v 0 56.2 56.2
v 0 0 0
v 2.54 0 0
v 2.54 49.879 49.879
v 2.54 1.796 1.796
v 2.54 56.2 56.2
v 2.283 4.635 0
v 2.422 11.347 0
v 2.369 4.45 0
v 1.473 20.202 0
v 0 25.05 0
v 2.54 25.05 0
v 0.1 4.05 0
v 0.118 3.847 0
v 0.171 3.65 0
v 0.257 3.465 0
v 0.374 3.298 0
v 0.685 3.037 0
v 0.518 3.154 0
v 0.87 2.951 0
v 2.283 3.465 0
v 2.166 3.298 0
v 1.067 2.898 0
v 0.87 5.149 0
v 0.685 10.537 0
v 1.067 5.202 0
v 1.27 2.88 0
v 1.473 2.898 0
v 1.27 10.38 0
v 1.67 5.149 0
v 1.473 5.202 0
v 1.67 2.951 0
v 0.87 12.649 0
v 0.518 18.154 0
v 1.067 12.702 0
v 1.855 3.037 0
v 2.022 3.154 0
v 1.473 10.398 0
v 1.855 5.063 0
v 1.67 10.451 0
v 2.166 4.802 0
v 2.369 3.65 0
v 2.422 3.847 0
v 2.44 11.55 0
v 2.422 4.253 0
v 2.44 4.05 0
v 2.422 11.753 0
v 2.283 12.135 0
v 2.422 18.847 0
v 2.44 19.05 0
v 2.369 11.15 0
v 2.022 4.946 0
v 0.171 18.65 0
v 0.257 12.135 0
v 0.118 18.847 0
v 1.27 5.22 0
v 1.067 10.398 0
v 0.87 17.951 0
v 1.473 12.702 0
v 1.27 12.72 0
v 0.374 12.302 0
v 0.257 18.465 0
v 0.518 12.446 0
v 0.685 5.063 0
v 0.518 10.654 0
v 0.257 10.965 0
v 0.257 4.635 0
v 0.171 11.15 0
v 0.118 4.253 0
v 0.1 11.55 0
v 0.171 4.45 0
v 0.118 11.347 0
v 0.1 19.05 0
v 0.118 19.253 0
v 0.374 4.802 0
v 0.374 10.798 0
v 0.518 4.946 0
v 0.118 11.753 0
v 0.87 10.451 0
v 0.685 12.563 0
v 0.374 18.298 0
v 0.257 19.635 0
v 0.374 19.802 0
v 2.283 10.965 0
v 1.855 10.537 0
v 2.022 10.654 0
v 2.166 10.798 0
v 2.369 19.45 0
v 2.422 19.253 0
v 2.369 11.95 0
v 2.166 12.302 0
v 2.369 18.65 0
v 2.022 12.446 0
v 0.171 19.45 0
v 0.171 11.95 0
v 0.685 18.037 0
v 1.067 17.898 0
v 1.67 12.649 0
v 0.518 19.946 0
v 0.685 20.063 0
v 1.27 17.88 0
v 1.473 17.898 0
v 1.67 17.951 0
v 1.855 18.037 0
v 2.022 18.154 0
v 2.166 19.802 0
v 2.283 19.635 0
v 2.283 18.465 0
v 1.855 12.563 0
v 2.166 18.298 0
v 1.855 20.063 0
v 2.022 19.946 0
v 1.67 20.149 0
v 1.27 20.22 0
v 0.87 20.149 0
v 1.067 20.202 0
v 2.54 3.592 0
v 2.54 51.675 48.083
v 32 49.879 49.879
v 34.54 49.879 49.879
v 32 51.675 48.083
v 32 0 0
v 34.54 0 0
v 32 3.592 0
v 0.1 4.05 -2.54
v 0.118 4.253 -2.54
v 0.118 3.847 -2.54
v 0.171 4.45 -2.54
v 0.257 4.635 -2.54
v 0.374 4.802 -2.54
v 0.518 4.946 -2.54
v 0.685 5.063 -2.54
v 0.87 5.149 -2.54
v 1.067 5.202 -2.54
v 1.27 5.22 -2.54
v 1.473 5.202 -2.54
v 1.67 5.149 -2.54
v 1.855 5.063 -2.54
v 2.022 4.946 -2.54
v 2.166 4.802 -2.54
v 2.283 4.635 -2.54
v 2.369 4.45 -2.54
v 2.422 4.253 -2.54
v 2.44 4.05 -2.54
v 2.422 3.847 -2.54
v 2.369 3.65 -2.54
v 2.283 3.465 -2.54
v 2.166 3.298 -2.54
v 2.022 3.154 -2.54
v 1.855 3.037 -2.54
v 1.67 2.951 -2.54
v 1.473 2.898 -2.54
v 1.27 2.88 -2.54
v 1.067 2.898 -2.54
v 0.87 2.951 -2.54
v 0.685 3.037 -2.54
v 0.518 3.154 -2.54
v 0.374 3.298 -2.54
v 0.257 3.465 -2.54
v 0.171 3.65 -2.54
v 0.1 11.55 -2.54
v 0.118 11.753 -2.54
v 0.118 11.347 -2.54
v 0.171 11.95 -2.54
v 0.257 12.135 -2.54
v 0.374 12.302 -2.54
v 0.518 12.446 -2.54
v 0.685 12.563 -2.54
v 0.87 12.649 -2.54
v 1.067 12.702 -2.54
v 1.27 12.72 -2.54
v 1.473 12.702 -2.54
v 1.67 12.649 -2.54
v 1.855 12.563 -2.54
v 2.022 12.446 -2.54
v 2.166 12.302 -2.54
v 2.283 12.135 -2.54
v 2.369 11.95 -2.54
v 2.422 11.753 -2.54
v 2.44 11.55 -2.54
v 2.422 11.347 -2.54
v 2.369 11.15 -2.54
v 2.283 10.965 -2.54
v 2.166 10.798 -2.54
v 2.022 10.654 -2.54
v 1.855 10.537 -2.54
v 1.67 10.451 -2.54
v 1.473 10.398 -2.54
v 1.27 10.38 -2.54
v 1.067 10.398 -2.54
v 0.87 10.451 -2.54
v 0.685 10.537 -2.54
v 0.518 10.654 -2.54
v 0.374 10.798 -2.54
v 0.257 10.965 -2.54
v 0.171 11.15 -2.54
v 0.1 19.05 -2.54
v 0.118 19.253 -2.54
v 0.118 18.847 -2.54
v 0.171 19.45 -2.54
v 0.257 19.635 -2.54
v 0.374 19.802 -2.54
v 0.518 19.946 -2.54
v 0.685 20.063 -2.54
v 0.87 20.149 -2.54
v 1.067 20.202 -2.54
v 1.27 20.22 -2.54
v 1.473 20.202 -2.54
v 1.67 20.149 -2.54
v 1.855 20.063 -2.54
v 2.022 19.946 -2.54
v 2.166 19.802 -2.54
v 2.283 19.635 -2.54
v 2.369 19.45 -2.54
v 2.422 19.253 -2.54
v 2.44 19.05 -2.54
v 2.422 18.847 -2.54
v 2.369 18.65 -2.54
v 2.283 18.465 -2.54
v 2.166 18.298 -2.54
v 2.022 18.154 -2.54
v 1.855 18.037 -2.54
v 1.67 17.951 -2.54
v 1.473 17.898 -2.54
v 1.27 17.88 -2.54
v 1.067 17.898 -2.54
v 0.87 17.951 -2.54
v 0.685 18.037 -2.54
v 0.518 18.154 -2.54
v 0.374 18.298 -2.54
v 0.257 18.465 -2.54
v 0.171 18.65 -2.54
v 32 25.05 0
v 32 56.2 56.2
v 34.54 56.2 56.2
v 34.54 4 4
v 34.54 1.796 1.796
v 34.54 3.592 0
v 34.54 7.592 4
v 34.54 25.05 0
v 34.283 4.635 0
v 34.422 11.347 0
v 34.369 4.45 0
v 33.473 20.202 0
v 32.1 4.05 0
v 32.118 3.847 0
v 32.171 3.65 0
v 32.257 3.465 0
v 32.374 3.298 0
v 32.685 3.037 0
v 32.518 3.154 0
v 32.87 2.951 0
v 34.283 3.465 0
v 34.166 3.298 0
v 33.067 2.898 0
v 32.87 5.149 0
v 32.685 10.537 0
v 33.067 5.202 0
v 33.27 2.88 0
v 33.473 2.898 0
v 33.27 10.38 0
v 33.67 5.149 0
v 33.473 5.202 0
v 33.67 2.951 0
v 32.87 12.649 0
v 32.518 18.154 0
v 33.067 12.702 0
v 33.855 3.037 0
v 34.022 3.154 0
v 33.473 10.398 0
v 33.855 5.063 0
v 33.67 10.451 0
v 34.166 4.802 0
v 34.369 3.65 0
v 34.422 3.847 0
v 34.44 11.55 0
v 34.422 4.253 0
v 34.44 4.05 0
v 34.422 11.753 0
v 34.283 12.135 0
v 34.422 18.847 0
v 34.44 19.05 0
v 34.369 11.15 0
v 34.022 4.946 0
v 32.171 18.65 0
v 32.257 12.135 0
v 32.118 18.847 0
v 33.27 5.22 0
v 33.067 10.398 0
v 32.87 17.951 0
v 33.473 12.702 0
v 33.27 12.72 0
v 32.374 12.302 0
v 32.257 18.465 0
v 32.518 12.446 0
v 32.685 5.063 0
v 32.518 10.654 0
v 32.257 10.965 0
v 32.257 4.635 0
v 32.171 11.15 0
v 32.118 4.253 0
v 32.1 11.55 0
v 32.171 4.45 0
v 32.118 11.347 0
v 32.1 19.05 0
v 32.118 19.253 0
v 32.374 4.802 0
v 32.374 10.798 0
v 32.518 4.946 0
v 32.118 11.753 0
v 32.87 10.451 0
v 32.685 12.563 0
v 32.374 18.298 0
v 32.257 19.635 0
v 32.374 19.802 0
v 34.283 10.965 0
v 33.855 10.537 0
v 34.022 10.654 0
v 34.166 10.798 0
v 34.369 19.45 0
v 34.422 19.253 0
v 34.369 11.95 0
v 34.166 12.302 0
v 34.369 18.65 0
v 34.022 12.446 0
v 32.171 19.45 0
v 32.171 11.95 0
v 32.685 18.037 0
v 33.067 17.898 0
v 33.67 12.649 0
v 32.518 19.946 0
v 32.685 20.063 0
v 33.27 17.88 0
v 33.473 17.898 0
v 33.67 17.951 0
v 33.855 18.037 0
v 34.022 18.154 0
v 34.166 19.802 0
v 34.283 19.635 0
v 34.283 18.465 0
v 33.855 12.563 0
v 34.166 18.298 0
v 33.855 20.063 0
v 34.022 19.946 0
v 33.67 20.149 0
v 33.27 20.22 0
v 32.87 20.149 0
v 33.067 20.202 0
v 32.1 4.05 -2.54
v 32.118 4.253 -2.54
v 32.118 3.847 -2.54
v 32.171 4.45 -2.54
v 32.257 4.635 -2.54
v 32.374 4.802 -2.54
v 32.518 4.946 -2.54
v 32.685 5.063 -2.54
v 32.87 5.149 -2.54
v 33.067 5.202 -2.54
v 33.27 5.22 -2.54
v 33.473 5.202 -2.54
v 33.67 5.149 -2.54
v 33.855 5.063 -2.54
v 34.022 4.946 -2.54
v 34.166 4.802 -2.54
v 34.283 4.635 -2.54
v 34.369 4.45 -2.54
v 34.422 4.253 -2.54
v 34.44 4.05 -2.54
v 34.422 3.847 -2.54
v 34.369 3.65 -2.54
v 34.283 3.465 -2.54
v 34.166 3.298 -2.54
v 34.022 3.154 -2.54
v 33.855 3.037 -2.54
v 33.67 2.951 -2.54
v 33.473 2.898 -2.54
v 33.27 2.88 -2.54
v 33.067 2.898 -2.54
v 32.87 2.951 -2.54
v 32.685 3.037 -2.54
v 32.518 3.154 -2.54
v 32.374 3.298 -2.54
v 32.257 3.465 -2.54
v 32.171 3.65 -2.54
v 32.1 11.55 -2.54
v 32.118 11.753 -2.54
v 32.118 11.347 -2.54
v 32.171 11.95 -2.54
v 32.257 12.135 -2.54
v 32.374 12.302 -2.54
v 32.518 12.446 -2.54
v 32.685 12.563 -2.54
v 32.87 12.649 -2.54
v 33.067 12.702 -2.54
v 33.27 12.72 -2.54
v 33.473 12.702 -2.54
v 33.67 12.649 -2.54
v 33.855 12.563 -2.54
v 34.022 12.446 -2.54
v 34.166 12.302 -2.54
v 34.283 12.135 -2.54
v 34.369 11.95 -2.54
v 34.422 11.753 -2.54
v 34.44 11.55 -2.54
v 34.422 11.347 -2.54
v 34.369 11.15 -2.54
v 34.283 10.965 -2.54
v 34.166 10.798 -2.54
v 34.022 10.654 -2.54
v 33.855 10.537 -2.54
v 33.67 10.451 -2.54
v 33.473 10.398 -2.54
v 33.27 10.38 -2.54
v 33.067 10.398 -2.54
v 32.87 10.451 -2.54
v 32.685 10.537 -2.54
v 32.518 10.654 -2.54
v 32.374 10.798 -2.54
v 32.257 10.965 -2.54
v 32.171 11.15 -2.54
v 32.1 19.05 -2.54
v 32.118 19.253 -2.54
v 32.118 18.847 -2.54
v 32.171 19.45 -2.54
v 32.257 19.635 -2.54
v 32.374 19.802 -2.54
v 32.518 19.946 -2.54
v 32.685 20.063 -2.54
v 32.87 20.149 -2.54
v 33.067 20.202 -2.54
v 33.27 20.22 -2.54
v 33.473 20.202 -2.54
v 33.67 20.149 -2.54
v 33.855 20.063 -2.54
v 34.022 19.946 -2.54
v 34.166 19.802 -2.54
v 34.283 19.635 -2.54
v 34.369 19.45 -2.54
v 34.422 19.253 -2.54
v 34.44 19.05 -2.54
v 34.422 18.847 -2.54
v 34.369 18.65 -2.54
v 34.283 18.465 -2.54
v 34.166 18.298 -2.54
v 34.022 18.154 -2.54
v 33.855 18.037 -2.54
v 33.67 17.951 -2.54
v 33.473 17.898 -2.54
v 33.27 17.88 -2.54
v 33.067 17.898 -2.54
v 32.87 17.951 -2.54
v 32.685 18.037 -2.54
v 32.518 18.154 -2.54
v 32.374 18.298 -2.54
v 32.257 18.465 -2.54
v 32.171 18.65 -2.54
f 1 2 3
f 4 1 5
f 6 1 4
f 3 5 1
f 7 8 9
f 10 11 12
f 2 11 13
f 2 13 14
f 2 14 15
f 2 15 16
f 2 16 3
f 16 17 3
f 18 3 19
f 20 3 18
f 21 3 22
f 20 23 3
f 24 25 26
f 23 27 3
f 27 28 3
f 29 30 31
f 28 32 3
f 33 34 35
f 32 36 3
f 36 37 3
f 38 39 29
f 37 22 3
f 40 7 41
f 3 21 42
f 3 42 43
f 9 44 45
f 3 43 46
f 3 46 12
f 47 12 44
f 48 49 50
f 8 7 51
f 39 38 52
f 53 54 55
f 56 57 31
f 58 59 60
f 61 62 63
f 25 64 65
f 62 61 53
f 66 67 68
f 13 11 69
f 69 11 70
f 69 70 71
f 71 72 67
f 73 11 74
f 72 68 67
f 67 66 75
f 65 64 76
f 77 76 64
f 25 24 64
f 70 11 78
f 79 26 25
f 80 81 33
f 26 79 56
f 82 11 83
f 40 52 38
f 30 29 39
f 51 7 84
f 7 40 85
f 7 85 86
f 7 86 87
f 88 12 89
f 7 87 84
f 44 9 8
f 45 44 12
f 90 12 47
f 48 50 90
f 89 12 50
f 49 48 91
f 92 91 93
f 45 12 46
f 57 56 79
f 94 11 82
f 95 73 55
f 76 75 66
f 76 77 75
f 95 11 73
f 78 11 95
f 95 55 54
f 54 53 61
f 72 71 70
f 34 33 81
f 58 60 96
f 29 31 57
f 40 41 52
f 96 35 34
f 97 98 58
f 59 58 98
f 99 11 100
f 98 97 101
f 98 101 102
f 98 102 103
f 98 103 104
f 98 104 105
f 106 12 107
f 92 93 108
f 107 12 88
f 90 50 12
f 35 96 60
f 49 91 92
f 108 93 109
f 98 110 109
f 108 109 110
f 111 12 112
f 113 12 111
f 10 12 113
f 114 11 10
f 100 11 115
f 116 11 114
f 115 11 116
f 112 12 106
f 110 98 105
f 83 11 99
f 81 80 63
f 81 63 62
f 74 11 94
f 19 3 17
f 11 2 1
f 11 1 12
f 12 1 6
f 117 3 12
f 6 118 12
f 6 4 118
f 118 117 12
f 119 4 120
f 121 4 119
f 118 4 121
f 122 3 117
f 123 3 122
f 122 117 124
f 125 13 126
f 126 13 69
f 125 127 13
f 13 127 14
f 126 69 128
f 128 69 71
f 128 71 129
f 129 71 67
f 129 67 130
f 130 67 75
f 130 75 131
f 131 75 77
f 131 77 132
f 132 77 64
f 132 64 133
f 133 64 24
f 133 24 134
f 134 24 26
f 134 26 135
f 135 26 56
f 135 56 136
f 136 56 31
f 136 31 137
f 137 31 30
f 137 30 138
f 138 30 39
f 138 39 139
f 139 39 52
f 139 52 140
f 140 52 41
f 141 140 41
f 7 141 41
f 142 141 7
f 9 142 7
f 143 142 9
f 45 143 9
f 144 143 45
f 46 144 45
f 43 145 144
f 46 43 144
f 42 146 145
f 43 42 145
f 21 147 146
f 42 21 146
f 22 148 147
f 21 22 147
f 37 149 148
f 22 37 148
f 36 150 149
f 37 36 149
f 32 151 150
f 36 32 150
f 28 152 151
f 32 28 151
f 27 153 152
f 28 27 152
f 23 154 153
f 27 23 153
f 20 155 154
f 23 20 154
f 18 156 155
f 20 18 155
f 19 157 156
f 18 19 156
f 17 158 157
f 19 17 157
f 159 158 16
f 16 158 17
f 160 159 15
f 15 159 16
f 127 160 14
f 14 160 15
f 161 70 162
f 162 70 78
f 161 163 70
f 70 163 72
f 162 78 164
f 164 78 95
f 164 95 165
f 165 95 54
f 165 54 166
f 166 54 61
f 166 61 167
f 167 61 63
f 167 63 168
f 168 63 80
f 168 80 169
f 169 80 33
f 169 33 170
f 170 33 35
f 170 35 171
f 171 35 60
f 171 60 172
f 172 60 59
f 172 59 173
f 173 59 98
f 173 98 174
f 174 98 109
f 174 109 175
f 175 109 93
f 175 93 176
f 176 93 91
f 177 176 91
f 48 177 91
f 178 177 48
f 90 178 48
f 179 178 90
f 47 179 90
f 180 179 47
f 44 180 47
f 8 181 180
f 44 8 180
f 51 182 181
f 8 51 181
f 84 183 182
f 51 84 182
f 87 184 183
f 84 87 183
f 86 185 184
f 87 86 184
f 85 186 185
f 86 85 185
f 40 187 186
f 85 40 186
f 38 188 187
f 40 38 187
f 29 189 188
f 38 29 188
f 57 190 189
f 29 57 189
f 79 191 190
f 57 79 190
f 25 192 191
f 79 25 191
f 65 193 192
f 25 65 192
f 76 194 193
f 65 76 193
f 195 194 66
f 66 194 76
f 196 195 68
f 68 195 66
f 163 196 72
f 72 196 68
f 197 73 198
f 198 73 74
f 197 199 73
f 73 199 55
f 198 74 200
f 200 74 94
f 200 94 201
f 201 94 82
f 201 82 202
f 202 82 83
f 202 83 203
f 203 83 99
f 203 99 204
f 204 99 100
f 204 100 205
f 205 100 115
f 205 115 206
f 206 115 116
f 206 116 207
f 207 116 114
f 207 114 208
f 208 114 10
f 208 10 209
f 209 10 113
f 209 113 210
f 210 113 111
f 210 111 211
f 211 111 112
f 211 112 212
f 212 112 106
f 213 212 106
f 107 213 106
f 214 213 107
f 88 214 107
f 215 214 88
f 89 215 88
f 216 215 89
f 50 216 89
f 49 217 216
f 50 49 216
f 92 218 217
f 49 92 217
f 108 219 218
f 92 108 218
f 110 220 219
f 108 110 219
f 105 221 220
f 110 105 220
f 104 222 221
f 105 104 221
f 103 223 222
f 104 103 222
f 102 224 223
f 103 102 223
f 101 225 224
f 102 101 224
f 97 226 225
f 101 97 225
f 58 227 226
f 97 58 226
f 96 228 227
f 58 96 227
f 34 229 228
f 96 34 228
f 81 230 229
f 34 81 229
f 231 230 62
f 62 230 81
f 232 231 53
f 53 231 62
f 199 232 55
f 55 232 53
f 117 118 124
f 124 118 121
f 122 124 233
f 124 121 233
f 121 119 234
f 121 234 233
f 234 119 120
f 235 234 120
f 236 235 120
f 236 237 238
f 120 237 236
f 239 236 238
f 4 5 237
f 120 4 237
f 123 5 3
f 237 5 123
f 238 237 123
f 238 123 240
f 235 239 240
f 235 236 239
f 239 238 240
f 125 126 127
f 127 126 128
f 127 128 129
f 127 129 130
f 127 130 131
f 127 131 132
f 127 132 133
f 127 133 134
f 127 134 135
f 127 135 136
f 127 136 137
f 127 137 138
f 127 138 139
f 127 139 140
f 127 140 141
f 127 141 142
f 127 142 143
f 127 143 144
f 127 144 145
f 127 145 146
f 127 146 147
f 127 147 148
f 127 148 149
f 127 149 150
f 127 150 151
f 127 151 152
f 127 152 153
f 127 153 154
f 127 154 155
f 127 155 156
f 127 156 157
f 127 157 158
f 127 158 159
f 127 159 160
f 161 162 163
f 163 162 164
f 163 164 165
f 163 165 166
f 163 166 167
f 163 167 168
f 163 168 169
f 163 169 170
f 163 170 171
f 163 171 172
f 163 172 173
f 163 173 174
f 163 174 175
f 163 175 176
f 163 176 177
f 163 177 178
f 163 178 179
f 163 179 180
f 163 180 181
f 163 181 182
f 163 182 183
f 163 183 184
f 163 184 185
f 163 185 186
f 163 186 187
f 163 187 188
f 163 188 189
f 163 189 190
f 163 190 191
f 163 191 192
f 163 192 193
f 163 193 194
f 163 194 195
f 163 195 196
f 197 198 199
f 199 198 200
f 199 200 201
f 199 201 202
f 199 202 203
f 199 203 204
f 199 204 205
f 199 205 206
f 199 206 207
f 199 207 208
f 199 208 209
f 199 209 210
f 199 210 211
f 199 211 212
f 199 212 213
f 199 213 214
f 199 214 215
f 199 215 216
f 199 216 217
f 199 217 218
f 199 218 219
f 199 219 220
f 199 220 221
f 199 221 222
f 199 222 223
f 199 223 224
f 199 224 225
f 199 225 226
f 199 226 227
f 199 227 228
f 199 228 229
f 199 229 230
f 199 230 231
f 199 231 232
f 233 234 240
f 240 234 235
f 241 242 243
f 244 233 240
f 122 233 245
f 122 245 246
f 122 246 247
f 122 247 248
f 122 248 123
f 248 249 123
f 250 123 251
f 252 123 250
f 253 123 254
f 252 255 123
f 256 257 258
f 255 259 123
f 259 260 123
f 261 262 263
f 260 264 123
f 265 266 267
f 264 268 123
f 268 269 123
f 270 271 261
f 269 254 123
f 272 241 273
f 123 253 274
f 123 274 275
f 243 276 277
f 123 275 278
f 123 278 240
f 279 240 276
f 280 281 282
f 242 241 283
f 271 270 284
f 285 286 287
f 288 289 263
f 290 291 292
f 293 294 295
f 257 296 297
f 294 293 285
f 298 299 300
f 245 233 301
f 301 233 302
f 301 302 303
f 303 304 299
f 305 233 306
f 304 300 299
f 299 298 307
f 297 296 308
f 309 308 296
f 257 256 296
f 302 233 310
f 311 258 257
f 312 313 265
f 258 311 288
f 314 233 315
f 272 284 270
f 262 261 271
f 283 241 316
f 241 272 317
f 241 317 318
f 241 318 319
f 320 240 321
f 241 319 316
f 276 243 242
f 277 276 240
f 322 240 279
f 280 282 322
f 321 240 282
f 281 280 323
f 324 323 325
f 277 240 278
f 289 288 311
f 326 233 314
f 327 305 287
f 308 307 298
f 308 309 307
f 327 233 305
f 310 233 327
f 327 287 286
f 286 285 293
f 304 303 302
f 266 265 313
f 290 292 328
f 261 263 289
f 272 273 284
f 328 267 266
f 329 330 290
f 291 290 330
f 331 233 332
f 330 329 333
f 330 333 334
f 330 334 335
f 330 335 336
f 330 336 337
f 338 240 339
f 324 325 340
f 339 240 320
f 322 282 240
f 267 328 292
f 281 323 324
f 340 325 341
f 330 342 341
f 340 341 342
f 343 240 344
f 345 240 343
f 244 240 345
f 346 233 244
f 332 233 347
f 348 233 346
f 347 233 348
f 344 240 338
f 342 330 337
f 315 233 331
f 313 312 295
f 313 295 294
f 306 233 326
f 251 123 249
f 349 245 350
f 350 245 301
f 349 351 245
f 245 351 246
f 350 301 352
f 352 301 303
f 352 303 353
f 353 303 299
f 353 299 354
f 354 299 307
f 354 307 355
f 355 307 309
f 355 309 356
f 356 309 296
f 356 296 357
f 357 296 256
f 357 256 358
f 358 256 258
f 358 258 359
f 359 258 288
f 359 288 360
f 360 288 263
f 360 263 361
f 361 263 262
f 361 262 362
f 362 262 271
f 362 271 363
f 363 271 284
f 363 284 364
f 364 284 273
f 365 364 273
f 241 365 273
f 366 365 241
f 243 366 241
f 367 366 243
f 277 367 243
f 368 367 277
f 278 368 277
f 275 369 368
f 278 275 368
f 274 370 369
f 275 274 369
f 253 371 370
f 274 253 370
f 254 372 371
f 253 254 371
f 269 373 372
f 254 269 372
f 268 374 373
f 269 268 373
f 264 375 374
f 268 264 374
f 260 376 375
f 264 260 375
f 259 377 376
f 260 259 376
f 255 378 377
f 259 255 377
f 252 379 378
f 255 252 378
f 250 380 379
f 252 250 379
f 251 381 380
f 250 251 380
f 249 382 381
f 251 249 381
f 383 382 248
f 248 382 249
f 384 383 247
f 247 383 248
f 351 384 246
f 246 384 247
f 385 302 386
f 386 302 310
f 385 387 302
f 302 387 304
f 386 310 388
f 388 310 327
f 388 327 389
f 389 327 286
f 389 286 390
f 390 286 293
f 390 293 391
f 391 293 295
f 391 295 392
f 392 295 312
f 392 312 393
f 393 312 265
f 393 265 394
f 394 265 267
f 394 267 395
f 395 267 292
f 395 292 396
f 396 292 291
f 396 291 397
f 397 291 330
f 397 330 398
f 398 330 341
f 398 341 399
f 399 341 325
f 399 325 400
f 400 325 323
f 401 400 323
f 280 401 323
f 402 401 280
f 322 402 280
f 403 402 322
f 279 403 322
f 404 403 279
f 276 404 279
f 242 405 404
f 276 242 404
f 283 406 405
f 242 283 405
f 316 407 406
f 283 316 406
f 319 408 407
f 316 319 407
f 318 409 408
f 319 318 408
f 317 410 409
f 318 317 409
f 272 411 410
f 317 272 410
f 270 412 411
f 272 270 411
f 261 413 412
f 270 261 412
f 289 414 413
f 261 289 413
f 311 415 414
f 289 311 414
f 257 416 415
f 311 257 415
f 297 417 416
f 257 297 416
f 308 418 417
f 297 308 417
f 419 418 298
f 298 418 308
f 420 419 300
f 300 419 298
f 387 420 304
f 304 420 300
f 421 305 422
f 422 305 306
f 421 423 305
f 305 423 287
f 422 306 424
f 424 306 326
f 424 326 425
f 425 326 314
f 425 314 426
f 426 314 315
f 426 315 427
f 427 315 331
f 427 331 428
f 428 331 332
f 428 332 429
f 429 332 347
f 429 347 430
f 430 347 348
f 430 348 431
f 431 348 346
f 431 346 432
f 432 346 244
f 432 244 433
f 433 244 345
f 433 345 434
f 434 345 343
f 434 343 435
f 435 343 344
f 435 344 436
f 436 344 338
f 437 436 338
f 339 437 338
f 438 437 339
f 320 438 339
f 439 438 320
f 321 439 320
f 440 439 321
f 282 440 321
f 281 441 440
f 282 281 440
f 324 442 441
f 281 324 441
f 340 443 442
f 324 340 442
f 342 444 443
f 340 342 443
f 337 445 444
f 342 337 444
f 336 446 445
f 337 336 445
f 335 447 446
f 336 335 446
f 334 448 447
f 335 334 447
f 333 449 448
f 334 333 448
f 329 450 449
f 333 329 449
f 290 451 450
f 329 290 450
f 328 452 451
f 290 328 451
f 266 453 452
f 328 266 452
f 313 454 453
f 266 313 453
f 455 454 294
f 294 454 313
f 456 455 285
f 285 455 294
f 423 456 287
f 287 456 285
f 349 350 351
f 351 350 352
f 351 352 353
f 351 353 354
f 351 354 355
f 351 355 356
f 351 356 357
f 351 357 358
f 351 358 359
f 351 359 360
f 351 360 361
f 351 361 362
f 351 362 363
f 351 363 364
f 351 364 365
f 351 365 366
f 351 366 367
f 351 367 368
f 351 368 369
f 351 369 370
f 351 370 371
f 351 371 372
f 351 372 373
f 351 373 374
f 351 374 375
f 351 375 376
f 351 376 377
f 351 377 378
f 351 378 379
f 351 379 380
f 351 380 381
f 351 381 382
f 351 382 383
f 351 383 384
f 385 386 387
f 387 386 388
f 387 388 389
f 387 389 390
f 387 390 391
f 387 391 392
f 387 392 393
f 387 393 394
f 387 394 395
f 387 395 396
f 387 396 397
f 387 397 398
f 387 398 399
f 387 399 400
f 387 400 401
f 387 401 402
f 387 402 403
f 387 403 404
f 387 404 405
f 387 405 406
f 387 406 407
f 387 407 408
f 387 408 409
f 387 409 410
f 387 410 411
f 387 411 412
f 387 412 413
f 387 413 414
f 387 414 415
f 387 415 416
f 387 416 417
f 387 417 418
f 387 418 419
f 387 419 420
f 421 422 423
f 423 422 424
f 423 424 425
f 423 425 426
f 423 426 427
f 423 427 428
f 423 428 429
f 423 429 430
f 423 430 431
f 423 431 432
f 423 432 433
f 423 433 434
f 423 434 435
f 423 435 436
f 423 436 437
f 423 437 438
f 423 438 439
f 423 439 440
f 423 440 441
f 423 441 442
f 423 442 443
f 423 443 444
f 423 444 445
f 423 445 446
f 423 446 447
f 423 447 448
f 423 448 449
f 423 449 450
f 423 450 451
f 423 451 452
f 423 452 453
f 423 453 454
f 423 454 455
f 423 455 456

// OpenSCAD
/*  Nexus 7 Camera Mirror Holder Design Sept 23, 2013
    Copyright 2013 Frank Thorley
    Camera Adapter = Adapter Plate plus Mirror Holder
    Securing posts are 0.2mm smaller than holes
    Countersink volume used to allow clearance when heat staking posts
    Reduces probabily of rubbing against N7 screen when installing

========================================================================
*/

// Default # of cylinder sides
$fn = 36;

//  All Dimensions in mm, Angles (s & t) in Degrees
    a = 32.0;   // Width of mirror mounting area
    b = 68.0;   // Height of mirror mounting area
    c = 2.54;   // Thickness of mirror mounting area ~ 0.1 inch
    d = 34.54;  // Distance between left & right securing holes
    f = 56.2;   // Height of side plates above adapter plate
    g = 2.54;   // Top plate thickness ~ 0.1 inch
    h = 3.592;  // Triangular extrusion to fill gap where plates meet
    i = 25.05;  // Attachment plate height
    j = 1.27;   // Left edge offset for Row 1/left securing posts centerline
    l = 36.56;  // Left edge offset for Row 2/right securing posts centerline
    m = 6.0;        // Mirror holder securing posts 1&4 offset from top
    n = 13.5;   // Mirror holder securing posts 2&5 offset from top
    p = 21.0;   // Mirror holder securing posts 3&6 offset from top
    u = 2.54;   // Securing posts length thickness of plate
    w = 1.27;   // Mounting holes(6)radius, make pin radius 0.1 mm less

/* Mirror Cover and Attachment Surface
 Recommend using double sided sticky tape to attact mirror
 Michaels has mall inexpensive mirrors that can be cut to size
 Recommended mirror size is 61mm x ????
*/
        translate ([g,h,0])         // Mirror backing plate angle = 45 degrees
            rotate (a = [45,0,0]){
                cube ([a,b,c]);
        }
            rotate (a = [0,90,0])   // Set holder proper orientation
            rotate (a = [0,0,-45])
                translate([-u,0,u]) // Triangular fill piece
        linear_extrude (height = a, center = false, convexity = 10, twist = 0)
                polygon (points = [[0,0], [u,0], [0,u]], paths= [[0,1,2]]);

// Left Side Triangular Shield
        rotate (a = [0,-90,0])
        translate([0,0,-g], [-c,0,0],[0,0,0])
        linear_extrude (height =c,center=false, convexity = 10, twist = 0)
        polygon (points = [[0,0], [0, i], [f,f]], paths = [[0,1,2]]);
// Right Side Triangular Shield
        rotate (a = [0,-90,0])
        translate([0,0,-d], [d,0,0],[0,0,0])
        linear_extrude (height =c,center=false, convexity = 10, twist = 0)
            polygon (points = [[0,0], [0, i], [f,f]], paths = [[0,1,2]]);
// Mirror Holder Left Side Securing Posts
            translate([j,i-m,-c])
                cylinder(u,w-0.1,w-0.1);  // Create posts
            translate([j,i-n,-c])
                cylinder(u,w-0.1,w-0.1);
            translate([j,i-p,-c])
                cylinder(u,w-0.1,w-0.1);
// Mirror Holder Right Side Securing Posts
            translate([d-w,i-m,-c])
                cylinder(u,w-0.1,w-0.1);
            translate([d-w,i-n,-c])
                cylinder(u,w-0.1,w-0.1);
            translate([d-w,i-p,-c])
                cylinder(u,w-0.1,w-0.1);
